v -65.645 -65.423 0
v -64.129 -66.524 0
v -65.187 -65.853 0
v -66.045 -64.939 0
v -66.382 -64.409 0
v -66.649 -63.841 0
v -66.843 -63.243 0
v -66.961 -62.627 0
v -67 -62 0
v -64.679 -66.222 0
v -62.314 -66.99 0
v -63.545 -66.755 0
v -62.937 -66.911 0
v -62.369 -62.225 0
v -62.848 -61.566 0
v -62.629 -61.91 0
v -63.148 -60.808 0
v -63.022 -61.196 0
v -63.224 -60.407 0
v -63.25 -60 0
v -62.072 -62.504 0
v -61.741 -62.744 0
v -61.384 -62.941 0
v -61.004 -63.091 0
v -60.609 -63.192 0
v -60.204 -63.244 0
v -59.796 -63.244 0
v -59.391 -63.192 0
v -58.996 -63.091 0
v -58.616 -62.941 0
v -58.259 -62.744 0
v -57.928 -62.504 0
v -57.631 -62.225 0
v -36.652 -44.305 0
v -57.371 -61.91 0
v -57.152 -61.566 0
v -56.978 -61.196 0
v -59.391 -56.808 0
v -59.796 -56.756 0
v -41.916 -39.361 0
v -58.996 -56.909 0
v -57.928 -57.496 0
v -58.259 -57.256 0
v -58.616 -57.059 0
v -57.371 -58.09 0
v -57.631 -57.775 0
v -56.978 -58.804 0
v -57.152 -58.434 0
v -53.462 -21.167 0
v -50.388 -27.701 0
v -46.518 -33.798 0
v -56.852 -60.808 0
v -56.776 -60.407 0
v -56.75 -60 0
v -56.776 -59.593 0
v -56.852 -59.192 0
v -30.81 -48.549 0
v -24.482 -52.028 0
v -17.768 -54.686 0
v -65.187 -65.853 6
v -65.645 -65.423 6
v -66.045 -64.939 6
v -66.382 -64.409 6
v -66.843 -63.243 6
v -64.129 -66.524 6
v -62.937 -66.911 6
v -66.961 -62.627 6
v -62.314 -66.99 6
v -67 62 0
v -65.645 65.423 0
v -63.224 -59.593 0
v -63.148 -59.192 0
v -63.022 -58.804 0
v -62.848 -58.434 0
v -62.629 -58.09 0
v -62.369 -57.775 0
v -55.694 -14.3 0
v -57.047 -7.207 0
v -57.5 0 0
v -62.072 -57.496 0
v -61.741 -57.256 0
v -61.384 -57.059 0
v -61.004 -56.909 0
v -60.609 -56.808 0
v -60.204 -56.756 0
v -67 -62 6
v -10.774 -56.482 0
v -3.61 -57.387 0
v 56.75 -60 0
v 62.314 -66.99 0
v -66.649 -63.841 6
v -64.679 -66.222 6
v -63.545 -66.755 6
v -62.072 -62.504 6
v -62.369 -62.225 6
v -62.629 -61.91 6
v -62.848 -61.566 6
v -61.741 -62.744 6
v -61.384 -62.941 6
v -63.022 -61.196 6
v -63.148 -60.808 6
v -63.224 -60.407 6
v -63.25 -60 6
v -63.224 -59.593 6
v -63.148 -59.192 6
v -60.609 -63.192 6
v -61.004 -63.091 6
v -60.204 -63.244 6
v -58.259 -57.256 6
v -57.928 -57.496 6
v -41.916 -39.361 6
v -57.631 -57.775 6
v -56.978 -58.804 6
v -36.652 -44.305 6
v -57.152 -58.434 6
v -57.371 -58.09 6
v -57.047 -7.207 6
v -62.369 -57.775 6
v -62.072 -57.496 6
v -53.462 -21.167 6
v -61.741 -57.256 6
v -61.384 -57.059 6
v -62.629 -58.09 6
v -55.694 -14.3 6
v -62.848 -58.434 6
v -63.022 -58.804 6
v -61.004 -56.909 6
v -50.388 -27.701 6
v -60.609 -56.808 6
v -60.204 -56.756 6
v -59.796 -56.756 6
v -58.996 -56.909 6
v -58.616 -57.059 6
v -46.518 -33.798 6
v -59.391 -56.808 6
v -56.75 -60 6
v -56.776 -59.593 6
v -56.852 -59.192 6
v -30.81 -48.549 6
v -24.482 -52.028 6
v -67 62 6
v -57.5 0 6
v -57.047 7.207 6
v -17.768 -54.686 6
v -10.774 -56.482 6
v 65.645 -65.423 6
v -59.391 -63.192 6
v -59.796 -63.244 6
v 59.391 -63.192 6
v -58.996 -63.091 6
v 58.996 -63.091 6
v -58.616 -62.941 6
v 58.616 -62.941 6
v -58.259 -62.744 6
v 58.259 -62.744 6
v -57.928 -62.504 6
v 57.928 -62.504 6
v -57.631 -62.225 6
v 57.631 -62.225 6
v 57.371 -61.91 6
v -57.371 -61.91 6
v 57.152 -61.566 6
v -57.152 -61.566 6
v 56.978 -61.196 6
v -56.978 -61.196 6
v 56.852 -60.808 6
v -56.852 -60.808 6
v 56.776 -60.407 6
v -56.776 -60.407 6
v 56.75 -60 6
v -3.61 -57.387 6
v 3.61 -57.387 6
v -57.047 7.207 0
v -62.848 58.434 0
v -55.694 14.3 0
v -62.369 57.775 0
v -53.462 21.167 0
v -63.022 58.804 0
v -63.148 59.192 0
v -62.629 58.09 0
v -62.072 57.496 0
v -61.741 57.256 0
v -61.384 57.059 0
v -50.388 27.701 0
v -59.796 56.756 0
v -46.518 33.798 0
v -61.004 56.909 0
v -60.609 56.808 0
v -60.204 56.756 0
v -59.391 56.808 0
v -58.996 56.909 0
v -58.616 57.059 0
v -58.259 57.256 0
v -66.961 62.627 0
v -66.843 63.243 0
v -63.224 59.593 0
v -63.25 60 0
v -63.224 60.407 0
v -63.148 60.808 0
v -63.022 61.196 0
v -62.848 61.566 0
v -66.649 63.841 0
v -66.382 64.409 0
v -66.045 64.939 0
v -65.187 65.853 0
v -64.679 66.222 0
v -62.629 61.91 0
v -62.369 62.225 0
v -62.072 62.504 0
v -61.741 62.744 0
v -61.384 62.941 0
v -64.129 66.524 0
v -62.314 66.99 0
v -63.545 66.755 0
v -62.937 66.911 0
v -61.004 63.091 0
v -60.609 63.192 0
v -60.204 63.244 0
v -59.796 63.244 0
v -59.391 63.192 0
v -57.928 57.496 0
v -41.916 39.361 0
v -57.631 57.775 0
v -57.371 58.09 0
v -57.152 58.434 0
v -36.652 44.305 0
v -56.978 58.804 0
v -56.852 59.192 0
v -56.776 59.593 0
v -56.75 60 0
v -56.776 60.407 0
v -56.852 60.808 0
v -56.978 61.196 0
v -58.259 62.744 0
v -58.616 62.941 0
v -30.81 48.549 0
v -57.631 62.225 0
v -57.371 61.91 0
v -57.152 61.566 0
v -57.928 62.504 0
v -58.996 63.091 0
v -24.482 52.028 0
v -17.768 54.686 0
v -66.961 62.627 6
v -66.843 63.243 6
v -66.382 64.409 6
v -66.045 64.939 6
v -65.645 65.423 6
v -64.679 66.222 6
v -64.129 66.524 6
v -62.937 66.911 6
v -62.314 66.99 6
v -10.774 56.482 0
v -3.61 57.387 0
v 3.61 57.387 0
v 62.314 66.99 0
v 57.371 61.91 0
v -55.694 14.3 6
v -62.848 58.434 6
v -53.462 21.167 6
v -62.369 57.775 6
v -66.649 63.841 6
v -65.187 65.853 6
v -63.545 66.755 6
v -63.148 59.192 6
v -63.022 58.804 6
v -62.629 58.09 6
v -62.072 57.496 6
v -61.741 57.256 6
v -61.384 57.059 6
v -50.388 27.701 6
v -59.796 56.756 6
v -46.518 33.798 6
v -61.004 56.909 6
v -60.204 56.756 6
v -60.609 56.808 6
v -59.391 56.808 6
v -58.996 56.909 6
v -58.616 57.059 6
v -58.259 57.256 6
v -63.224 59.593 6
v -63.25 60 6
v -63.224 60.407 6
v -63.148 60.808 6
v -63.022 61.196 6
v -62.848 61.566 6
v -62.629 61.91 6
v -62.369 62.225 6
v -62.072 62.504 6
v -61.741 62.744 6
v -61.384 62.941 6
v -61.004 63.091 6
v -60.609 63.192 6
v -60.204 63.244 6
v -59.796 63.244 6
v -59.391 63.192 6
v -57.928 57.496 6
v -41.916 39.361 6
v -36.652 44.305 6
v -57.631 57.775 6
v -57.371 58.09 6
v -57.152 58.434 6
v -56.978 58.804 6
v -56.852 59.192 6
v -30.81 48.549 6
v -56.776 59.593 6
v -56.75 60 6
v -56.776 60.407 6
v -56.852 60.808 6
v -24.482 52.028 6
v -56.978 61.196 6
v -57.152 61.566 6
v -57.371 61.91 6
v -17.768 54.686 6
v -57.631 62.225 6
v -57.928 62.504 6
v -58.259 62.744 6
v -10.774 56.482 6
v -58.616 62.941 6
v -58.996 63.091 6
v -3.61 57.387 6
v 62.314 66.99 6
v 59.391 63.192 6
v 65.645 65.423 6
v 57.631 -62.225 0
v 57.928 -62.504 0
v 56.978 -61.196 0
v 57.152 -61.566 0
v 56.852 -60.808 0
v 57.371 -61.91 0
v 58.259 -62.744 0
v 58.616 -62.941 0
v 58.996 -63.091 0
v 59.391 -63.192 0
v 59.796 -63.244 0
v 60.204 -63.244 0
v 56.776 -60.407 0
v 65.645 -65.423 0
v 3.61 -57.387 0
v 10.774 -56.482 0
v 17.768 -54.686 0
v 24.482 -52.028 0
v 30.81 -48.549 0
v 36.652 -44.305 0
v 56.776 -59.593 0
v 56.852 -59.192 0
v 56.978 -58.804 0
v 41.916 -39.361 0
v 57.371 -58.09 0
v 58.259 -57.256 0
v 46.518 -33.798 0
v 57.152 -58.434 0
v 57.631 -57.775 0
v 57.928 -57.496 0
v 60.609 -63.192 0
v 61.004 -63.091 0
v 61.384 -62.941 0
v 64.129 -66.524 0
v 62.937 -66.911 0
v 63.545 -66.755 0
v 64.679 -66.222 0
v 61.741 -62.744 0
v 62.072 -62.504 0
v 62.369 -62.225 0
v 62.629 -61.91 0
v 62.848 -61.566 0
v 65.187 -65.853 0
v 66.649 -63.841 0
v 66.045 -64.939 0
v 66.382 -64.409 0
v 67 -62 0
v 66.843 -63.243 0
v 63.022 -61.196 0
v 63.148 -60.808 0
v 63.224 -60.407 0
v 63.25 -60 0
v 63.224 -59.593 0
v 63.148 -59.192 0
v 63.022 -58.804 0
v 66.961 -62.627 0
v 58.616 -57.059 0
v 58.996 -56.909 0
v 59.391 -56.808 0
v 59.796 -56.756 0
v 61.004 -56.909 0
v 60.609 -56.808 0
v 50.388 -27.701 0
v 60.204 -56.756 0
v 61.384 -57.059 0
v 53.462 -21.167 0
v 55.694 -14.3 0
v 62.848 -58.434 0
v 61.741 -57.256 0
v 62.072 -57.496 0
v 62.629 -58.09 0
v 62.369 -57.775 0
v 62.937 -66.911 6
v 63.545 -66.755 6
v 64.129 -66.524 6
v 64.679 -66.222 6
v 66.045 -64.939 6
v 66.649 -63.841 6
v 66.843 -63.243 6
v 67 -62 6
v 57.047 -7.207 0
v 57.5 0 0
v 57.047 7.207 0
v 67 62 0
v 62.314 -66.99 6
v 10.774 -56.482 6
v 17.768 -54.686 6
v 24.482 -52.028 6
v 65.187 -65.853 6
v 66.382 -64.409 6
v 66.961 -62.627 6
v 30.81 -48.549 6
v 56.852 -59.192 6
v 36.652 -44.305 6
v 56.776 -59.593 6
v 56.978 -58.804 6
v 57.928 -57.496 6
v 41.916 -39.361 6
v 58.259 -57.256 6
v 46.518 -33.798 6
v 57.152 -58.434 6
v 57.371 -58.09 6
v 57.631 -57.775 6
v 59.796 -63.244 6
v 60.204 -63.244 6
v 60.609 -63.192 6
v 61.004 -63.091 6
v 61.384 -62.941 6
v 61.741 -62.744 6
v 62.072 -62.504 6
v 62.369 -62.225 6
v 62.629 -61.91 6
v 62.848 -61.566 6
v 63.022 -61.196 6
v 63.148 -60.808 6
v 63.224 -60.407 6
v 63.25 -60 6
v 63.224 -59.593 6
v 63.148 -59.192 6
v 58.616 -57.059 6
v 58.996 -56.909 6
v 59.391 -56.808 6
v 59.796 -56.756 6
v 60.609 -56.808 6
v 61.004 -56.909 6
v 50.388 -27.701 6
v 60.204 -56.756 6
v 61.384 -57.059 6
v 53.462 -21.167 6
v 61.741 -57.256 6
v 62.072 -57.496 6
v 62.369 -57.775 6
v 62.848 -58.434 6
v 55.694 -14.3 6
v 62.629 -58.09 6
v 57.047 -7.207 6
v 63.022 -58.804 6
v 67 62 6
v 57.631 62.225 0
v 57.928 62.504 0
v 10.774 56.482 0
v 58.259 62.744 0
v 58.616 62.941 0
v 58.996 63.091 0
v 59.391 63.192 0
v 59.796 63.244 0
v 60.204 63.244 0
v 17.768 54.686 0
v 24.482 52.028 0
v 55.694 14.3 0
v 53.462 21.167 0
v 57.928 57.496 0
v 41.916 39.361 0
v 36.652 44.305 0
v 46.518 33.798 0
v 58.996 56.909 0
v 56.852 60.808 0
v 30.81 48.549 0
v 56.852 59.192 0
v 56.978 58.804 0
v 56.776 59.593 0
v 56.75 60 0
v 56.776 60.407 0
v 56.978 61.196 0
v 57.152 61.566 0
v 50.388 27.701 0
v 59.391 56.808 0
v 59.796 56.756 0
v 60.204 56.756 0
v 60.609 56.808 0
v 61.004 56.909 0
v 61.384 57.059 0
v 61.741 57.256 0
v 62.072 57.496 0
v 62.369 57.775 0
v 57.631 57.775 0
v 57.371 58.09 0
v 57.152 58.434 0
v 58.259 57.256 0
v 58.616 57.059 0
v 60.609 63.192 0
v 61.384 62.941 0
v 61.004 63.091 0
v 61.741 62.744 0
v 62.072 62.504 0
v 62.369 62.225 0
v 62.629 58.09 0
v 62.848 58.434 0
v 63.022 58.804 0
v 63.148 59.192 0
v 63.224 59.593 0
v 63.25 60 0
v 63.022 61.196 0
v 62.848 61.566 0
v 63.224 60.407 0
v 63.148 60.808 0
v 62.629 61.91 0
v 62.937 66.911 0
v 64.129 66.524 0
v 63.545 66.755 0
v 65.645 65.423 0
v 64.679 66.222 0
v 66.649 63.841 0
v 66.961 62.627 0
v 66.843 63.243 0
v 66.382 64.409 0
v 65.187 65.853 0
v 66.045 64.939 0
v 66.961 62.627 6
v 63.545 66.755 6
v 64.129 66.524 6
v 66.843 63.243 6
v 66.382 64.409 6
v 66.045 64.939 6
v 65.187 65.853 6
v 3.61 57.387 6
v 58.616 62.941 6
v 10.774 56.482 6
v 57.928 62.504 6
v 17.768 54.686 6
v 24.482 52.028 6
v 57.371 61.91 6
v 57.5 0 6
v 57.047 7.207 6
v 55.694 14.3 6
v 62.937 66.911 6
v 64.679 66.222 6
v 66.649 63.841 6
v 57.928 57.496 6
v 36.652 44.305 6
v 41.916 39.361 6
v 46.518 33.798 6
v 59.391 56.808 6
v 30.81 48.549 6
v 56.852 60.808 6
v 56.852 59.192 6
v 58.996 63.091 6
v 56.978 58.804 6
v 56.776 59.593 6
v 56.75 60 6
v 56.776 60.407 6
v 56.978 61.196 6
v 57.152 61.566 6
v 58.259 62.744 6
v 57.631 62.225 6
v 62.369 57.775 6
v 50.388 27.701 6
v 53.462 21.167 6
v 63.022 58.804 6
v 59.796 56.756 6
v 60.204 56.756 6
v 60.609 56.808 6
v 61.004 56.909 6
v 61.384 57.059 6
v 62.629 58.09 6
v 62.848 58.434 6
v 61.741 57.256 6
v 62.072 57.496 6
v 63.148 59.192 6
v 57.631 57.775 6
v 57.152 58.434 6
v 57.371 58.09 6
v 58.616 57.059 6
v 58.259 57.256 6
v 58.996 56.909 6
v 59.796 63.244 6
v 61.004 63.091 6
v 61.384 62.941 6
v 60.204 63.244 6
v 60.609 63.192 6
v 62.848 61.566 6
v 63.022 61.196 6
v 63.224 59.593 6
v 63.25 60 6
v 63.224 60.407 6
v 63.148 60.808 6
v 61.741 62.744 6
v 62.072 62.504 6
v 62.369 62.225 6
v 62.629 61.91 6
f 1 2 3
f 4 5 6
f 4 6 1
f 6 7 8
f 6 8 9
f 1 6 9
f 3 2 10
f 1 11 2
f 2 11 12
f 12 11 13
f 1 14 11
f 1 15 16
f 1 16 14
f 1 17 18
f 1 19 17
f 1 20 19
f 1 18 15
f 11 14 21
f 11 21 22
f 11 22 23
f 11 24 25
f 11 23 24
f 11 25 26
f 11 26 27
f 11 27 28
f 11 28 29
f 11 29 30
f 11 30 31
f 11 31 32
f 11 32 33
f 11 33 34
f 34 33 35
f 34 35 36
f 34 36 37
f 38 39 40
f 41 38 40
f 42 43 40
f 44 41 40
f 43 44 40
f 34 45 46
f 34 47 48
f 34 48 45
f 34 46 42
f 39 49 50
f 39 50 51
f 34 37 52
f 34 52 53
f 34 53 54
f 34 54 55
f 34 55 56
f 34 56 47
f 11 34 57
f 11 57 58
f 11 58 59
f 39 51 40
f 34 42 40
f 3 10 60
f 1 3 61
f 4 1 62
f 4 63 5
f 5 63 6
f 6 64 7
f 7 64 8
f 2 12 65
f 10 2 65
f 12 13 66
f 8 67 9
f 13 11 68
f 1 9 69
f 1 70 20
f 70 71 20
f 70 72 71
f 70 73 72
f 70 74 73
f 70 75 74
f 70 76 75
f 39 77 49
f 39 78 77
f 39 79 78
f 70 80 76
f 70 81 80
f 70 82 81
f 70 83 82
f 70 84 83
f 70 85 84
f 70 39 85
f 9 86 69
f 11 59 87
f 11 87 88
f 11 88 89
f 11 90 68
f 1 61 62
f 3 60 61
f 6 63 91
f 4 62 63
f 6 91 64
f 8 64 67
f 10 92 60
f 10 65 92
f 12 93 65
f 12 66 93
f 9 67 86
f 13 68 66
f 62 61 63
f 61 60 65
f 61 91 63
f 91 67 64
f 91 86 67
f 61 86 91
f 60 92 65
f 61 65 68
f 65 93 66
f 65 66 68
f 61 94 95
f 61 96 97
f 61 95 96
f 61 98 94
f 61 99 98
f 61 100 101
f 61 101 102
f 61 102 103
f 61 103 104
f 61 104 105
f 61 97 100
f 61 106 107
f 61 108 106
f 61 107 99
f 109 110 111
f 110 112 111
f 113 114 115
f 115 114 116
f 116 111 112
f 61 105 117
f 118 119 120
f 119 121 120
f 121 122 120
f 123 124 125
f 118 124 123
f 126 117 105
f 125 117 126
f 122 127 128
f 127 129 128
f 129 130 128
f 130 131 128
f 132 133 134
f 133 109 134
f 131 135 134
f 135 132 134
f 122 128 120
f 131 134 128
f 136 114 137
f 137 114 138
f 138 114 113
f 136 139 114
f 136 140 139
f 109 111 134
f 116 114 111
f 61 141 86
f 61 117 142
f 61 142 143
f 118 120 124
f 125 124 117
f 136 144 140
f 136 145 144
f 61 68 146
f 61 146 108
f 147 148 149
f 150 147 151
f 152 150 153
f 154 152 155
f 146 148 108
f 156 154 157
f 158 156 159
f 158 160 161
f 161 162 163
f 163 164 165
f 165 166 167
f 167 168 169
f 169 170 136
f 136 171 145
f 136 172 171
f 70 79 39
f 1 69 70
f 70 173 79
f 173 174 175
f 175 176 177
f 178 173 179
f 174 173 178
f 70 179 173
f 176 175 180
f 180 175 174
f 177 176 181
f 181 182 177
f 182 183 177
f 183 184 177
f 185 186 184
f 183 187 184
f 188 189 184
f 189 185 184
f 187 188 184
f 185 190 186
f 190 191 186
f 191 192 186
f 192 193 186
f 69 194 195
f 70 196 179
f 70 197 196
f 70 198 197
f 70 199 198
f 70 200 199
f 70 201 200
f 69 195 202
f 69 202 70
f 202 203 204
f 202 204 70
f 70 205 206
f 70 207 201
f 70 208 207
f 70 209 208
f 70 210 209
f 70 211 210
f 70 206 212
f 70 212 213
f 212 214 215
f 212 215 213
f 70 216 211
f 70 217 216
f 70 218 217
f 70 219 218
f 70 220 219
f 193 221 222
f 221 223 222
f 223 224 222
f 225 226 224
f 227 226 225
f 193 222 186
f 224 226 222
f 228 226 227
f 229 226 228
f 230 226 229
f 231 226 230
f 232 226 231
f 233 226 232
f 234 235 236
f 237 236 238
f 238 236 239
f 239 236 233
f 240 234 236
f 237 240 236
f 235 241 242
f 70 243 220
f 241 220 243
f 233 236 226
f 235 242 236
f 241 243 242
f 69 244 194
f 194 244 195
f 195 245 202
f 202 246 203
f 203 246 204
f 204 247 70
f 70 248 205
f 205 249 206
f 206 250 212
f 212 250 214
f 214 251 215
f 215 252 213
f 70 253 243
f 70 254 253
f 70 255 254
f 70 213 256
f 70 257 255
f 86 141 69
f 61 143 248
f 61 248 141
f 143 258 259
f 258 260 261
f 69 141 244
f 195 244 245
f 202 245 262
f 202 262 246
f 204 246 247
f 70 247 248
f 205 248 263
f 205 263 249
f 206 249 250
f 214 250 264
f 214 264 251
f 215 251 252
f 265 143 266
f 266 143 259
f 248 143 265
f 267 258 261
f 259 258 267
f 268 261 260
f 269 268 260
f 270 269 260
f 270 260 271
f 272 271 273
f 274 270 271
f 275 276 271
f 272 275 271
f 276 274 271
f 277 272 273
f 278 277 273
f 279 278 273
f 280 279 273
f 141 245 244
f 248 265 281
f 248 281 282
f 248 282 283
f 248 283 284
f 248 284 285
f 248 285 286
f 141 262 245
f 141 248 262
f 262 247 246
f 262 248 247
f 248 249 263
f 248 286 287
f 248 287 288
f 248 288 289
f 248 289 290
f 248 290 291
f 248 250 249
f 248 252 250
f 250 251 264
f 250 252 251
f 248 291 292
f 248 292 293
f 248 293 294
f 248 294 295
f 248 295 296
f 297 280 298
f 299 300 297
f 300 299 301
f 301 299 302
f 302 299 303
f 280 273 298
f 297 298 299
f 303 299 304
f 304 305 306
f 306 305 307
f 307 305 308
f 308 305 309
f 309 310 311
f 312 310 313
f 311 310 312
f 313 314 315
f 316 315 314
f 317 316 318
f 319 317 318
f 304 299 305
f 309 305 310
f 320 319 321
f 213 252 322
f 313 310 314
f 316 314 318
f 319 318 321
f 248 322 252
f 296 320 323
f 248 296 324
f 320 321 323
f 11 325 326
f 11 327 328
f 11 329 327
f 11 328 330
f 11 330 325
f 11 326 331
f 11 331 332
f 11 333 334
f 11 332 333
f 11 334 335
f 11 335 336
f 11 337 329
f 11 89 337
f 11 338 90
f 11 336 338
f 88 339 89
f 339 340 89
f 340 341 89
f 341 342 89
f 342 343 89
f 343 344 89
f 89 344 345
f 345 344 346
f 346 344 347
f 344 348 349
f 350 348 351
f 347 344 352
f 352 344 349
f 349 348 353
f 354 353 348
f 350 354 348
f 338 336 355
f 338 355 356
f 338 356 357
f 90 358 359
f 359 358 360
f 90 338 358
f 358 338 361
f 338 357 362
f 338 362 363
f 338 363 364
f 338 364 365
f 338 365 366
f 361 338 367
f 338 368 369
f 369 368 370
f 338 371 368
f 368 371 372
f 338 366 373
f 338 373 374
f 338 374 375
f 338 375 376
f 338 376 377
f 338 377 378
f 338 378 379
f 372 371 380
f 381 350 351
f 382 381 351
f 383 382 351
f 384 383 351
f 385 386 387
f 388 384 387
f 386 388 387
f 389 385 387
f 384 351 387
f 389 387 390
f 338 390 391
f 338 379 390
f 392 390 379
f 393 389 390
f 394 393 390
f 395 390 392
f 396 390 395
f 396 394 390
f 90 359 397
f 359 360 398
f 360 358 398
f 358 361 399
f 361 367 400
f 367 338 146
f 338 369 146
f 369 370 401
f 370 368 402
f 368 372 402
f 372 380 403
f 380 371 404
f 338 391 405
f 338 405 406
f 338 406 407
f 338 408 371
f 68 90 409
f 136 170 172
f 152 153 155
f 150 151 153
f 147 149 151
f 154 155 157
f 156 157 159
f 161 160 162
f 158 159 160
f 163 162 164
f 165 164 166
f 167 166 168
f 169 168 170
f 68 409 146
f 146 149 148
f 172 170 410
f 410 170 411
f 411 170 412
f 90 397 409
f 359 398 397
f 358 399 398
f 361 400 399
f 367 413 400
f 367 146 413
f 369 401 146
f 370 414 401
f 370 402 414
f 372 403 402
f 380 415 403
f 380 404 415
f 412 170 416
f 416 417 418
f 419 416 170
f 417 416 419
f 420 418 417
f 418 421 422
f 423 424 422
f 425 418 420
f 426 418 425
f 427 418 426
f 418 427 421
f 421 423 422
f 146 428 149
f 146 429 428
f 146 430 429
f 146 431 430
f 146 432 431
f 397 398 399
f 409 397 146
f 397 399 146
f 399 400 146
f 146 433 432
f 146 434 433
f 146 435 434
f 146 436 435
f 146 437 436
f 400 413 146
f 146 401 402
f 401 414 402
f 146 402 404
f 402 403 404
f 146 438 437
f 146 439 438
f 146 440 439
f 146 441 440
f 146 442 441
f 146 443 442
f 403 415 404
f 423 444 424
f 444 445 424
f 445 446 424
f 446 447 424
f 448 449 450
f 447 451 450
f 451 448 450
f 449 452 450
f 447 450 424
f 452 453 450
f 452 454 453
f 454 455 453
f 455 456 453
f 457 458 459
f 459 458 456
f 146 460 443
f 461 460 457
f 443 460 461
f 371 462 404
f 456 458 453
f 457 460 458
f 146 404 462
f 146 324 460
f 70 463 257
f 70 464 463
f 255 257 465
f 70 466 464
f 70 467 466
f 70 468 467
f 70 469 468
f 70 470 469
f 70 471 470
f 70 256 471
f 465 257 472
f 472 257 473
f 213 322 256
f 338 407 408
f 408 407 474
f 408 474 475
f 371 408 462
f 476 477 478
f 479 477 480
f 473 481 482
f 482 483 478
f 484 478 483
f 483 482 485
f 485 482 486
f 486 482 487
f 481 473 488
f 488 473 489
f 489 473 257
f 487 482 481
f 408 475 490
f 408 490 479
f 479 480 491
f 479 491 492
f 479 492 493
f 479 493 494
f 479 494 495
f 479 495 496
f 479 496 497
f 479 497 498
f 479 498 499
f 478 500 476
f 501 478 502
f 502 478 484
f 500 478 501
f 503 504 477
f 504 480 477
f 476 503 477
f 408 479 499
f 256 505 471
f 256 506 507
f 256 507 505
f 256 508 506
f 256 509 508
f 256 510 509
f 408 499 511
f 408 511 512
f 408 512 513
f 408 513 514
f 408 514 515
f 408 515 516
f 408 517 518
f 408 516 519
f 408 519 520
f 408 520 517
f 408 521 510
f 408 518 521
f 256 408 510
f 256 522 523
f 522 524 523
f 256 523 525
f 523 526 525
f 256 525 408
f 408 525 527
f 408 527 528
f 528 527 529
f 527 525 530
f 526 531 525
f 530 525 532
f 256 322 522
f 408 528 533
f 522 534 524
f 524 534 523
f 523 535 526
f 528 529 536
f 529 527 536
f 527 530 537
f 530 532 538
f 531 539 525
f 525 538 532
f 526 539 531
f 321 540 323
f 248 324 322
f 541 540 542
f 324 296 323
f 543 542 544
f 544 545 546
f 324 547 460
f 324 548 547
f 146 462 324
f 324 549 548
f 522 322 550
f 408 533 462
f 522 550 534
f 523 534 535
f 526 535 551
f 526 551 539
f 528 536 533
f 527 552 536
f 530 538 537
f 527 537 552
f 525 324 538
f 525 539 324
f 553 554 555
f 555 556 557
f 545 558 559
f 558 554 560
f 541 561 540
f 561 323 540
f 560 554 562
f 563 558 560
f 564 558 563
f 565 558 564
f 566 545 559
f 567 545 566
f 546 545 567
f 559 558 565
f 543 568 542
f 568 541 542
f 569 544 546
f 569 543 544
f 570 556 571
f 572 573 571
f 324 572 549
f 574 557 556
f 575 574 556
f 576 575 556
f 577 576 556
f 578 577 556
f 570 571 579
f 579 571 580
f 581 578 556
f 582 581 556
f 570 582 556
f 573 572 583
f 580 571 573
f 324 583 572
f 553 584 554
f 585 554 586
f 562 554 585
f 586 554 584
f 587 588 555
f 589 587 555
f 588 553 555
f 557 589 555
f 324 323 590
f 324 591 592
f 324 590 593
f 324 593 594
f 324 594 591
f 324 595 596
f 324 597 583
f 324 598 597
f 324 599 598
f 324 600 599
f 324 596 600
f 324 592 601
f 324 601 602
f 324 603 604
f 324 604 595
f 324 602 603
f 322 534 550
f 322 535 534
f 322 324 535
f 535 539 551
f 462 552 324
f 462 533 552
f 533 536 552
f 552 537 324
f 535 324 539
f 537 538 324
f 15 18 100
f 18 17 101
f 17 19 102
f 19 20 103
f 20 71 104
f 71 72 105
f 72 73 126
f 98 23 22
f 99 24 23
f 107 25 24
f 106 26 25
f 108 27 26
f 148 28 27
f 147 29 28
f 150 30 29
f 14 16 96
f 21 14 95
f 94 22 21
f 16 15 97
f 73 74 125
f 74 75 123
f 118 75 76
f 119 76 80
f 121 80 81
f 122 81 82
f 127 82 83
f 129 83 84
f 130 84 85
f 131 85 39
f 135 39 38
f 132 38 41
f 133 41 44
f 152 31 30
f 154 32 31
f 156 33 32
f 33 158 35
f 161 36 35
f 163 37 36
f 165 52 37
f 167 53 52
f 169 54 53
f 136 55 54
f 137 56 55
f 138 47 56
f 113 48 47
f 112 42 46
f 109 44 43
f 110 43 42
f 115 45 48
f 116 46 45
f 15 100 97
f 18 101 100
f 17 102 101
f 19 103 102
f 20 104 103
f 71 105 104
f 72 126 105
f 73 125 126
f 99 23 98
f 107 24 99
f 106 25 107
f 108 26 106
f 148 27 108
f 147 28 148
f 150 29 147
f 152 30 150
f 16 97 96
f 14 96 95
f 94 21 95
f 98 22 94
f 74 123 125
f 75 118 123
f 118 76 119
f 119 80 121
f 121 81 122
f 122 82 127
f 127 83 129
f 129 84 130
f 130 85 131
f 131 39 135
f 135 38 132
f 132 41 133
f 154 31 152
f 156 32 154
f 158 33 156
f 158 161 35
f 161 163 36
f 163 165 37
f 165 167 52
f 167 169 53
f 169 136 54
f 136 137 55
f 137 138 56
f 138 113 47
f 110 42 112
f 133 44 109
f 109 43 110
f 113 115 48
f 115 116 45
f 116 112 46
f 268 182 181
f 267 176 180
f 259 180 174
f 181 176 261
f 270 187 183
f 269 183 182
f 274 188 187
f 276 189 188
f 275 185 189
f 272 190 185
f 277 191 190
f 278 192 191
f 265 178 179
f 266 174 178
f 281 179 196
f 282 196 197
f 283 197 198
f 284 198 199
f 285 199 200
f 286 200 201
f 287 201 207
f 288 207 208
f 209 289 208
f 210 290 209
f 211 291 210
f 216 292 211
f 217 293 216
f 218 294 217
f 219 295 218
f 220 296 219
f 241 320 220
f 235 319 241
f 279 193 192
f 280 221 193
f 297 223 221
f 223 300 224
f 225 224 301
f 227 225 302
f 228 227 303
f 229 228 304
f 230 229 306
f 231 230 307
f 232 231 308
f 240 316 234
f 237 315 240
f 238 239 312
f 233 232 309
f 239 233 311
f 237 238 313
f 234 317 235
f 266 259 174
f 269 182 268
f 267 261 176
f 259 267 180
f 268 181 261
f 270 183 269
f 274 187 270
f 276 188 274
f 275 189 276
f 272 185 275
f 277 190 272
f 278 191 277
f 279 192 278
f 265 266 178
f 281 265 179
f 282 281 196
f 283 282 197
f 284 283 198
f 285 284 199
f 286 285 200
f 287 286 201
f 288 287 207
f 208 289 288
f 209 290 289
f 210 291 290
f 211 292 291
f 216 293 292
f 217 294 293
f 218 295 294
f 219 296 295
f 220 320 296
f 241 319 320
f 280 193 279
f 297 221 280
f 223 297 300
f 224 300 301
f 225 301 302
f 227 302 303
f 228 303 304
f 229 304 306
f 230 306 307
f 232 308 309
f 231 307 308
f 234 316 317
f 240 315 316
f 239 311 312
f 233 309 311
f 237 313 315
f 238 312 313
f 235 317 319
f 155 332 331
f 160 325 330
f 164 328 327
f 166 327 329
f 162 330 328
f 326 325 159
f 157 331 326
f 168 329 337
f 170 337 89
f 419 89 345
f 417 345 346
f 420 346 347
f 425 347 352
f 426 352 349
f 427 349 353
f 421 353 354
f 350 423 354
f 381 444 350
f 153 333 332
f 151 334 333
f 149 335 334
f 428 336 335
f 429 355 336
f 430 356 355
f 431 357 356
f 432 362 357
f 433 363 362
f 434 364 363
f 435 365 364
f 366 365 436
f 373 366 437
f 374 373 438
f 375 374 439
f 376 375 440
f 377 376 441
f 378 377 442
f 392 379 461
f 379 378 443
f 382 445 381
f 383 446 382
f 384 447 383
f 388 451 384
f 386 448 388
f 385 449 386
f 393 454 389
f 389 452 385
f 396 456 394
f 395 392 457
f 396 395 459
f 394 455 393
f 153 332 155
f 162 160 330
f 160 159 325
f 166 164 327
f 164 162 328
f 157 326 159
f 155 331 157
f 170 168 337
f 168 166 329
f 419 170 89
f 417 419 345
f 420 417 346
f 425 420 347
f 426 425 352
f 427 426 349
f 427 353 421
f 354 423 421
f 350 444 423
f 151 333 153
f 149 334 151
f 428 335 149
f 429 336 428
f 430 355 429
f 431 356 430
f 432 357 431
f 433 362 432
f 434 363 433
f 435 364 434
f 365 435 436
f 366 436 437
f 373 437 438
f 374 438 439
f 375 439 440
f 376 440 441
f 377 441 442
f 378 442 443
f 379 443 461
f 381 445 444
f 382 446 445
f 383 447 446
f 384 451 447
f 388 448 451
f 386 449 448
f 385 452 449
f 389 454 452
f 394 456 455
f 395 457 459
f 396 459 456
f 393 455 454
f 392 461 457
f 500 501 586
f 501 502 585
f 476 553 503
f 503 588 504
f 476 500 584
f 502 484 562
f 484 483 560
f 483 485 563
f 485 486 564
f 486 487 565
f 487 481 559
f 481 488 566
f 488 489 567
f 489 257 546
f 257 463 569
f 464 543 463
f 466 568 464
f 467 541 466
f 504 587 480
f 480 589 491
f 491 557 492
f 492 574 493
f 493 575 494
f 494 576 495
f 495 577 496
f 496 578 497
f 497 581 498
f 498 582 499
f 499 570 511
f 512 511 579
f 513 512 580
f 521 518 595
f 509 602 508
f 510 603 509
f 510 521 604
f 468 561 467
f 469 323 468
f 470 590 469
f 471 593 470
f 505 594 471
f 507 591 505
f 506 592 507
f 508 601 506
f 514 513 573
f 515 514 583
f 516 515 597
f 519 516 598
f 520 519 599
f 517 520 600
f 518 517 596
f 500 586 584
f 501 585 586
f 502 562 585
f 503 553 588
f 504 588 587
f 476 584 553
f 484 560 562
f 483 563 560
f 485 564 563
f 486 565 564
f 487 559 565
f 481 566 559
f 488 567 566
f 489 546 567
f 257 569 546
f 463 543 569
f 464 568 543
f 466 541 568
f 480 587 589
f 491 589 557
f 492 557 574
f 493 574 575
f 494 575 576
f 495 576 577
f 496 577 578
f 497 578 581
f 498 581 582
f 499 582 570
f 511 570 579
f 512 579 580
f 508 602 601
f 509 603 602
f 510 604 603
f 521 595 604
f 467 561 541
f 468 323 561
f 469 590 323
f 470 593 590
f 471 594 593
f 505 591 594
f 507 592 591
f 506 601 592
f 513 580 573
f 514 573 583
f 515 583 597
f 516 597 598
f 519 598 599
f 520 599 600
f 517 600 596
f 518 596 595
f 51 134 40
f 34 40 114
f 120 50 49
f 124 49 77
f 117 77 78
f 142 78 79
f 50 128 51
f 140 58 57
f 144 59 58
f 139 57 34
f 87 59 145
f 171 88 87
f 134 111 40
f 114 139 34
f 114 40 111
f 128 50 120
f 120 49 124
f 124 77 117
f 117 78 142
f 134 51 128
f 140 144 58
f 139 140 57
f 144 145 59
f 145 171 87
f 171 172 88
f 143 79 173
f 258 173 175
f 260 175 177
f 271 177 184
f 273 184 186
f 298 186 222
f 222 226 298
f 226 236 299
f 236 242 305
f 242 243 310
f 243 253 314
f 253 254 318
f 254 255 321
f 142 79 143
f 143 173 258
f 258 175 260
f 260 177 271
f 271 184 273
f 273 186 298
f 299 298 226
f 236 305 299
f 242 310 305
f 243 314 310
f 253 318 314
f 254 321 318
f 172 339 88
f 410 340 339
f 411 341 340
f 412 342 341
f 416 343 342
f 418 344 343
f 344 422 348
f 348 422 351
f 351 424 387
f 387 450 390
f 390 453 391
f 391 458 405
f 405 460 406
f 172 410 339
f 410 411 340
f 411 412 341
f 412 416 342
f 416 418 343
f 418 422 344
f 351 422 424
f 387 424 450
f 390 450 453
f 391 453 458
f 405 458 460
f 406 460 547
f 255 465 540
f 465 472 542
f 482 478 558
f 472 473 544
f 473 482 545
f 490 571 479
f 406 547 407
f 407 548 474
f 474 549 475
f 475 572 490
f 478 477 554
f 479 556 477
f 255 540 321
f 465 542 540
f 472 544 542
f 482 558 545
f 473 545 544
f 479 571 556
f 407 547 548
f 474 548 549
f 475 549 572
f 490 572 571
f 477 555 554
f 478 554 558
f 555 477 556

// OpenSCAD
$fn = 50;

difference() {
	union() {
		hull() {
			translate(v = [-62.0, 62.0, 0]) {
				cylinder(h = 6, r = 5);
			}
			translate(v = [62.0, 62.0, 0]) {
				cylinder(h = 6, r = 5);
			}
			translate(v = [-62.0, -62.0, 0]) {
				cylinder(h = 6, r = 5);
			}
			translate(v = [62.0, -62.0, 0]) {
				cylinder(h = 6, r = 5);
			}
		}
	}
	union() {
		translate(v = [-60.0, -60.0, -100.0]) {
			cylinder(h = 200, r = 3.25);
		}
		translate(v = [-60.0, 60.0, -100.0]) {
			cylinder(h = 200, r = 3.25);
		}
		translate(v = [60.0, -60.0, -100.0]) {
			cylinder(h = 200, r = 3.25);
		}
		translate(v = [60.0, 60.0, -100.0]) {
			cylinder(h = 200, r = 3.25);
		}
		translate(v = [-60.0, -60.0, -100.0]) {
			cylinder(h = 200, r = 1.8);
		}
		translate(v = [-60.0, 60.0, -100.0]) {
			cylinder(h = 200, r = 1.8);
		}
		translate(v = [60.0, -60.0, -100.0]) {
			cylinder(h = 200, r = 1.8);
		}
		translate(v = [60.0, 60.0, -100.0]) {
			cylinder(h = 200, r = 1.8);
		}
		cylinder(h = 6, r = 57.5);
	}
}
